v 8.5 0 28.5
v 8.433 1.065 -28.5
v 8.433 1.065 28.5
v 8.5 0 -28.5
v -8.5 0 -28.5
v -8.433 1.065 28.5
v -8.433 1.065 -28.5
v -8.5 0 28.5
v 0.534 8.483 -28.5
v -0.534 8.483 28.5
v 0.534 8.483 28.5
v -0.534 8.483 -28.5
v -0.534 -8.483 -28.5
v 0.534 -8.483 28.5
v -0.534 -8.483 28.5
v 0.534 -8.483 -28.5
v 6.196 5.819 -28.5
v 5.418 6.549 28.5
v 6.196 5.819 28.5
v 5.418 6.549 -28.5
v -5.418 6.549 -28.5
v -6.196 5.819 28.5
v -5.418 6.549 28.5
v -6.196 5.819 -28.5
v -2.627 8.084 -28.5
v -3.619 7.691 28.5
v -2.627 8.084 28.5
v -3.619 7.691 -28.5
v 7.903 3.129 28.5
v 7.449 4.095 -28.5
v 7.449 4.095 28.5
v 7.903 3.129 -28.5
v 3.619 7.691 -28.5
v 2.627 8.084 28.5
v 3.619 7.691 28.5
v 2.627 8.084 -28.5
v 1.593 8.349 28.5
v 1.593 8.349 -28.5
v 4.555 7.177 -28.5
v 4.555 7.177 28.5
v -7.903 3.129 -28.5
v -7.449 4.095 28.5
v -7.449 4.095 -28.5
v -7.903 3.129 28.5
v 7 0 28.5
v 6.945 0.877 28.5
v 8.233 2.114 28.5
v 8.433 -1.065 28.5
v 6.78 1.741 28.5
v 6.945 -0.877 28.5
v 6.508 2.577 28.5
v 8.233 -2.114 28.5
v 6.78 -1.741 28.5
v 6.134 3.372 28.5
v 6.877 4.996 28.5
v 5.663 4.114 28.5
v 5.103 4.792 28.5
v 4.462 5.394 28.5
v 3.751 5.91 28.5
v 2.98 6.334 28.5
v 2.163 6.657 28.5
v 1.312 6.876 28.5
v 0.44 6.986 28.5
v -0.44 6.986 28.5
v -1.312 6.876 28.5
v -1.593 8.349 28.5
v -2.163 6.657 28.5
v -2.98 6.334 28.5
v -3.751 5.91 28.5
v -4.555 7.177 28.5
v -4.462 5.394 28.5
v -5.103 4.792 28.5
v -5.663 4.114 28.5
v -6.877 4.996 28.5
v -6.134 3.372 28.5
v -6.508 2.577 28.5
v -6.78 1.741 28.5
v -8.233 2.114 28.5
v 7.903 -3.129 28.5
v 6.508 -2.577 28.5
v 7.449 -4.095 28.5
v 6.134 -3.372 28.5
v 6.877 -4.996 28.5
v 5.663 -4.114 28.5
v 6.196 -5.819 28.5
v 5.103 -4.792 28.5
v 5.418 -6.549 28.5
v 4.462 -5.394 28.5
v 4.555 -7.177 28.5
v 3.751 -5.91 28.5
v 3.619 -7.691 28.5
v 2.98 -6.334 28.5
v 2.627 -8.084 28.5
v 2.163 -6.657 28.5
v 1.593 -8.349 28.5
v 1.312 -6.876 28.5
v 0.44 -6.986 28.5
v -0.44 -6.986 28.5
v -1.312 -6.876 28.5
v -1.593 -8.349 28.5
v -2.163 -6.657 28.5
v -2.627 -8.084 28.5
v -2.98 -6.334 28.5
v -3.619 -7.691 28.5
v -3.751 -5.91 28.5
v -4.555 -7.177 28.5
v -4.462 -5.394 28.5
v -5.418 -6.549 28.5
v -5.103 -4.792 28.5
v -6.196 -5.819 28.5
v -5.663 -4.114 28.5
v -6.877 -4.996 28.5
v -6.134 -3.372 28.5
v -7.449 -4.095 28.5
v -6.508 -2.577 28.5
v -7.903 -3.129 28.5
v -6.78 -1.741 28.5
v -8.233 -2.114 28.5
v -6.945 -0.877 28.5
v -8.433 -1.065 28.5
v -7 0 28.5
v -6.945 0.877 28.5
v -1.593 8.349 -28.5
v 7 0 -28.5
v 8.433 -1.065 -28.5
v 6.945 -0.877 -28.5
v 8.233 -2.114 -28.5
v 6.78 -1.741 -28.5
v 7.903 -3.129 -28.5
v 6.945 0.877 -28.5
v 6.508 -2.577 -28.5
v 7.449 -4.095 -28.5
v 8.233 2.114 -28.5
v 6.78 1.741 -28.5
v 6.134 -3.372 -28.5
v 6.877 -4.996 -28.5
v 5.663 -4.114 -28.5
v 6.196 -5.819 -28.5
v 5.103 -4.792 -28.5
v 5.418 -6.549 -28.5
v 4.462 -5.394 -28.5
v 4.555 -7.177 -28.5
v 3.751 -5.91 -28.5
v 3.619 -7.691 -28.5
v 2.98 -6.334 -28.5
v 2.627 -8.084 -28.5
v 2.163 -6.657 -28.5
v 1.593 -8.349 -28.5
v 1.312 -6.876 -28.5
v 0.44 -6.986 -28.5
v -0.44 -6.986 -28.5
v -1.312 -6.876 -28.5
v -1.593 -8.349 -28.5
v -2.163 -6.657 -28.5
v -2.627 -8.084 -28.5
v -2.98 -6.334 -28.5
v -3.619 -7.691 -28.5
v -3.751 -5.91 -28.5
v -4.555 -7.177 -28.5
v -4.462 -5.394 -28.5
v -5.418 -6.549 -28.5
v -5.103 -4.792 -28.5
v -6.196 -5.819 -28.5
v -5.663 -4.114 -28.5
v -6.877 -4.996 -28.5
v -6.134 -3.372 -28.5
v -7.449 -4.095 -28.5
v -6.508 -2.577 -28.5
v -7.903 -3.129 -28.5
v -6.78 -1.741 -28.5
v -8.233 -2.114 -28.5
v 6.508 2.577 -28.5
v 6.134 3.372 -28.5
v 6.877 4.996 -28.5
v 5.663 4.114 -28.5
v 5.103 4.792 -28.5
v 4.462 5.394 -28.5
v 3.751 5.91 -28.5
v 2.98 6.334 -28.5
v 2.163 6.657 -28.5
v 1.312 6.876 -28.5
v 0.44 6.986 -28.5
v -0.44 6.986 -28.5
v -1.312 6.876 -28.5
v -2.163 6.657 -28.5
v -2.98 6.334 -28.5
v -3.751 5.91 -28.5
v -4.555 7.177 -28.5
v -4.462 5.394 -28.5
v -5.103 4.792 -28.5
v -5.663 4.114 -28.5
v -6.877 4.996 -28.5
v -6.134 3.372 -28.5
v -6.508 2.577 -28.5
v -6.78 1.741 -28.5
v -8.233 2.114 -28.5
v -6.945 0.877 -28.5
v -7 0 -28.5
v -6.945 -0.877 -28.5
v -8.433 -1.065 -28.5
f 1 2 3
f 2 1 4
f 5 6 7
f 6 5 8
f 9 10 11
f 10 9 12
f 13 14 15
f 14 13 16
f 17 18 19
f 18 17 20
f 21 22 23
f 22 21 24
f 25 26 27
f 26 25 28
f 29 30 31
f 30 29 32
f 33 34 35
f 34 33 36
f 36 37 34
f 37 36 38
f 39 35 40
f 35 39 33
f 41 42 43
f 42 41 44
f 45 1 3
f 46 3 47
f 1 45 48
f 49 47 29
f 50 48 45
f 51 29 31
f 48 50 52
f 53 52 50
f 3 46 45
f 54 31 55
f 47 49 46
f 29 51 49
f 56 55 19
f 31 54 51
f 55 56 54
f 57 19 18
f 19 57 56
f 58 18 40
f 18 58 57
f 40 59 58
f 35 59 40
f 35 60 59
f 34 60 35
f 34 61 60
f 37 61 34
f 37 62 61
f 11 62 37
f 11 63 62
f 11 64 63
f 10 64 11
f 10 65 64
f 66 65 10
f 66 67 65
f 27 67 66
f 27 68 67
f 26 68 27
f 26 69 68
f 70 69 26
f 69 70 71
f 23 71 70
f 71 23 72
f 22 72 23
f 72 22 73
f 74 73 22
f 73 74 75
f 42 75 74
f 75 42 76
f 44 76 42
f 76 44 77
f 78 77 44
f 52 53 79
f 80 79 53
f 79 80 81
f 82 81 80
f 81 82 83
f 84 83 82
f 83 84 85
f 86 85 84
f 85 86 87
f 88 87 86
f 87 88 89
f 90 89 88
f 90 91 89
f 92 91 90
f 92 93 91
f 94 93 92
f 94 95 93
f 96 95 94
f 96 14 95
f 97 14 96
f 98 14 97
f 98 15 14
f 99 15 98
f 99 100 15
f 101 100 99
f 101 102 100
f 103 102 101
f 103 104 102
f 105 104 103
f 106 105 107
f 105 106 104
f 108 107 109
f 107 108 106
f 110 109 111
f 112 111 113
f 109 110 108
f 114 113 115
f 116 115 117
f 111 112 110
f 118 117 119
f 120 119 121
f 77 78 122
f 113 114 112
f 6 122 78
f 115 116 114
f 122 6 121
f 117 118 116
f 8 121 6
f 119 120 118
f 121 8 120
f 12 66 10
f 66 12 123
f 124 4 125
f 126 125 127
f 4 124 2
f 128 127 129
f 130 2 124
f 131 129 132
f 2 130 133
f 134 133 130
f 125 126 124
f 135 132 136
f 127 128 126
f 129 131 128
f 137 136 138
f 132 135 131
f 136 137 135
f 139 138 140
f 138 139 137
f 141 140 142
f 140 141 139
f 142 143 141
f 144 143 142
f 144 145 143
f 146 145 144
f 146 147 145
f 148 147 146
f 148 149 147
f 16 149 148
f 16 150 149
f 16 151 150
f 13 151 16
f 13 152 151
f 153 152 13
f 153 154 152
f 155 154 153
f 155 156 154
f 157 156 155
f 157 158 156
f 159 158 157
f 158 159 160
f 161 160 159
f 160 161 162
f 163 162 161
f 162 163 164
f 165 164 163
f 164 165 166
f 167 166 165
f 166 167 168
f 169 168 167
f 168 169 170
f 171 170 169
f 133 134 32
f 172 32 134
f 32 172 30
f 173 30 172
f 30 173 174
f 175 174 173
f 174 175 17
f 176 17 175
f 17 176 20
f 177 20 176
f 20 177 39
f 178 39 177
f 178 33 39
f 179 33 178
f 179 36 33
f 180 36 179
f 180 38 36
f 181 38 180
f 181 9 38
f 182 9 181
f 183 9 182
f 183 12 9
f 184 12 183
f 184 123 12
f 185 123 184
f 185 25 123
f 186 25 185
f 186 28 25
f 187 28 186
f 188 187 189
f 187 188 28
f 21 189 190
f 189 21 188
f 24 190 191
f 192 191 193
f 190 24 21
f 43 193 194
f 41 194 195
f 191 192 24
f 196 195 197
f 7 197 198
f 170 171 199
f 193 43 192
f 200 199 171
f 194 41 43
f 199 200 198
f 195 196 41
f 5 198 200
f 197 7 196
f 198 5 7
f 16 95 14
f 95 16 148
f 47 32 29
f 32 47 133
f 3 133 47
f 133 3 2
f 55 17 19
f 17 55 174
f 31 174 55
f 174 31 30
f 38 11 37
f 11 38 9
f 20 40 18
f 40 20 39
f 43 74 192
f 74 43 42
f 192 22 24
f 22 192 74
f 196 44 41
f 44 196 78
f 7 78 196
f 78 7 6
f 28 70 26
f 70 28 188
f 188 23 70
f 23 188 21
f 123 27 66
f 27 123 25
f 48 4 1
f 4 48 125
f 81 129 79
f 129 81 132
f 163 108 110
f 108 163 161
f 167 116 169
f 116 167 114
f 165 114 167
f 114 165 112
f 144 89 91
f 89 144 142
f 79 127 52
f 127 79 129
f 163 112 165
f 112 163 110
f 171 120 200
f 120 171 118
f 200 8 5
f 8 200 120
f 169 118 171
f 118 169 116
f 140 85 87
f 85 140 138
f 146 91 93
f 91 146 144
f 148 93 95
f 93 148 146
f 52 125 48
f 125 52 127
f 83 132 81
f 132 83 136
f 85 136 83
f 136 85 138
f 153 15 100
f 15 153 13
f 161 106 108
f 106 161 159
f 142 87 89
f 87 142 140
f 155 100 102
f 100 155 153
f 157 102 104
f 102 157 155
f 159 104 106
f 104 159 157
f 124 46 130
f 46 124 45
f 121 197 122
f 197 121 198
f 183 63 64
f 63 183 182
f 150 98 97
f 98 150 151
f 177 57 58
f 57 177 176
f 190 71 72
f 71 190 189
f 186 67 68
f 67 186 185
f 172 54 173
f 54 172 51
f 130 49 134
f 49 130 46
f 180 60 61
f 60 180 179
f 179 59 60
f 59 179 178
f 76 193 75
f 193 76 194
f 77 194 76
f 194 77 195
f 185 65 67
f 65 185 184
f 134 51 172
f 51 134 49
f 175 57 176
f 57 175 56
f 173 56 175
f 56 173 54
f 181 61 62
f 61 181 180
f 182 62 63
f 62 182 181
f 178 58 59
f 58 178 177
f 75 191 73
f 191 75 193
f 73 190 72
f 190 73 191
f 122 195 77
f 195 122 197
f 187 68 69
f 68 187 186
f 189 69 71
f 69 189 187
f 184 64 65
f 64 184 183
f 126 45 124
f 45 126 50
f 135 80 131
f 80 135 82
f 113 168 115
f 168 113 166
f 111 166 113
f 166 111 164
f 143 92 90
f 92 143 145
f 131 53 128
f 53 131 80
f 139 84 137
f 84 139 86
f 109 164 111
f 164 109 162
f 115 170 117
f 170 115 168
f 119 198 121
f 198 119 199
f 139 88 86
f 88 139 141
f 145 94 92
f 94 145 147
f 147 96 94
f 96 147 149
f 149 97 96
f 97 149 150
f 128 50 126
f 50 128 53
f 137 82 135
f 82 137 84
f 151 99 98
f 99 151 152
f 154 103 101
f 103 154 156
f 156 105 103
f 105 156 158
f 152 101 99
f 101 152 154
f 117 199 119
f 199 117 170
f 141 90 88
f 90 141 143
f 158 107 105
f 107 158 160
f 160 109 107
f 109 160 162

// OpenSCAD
$fn = 50;


difference() {
	union() {
		translate(v = [0, 0, -28.5000000000]) {
			cylinder(h = 57, r = 8.5000000000);
		}
	}
	union() {
		translate(v = [0, 0, -100.0000000000]) {
			cylinder(h = 200, r = 7);
		}
	}
}
